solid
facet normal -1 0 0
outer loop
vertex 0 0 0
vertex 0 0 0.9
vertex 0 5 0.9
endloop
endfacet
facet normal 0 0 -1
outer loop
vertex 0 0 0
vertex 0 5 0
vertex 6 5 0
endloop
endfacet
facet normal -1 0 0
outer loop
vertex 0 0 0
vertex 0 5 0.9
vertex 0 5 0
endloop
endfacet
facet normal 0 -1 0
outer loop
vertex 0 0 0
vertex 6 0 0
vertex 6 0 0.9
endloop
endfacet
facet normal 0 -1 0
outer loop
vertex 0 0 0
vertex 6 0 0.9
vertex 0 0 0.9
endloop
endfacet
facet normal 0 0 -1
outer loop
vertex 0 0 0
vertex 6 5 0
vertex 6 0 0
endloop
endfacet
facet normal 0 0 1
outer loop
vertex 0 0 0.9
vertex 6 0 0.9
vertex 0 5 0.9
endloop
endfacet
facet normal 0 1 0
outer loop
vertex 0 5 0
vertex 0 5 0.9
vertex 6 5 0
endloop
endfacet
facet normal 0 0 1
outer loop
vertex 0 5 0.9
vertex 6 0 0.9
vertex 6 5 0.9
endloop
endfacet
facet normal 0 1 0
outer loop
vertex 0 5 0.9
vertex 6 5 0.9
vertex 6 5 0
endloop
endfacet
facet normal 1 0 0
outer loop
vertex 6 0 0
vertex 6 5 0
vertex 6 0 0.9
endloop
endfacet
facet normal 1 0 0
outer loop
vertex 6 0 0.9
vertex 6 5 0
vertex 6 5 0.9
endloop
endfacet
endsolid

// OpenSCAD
/* Warning, this is a very basic generator with a lot of approximation 
input data : [VQFN, VLX, 6x5x0.9mm, 42, , A, C04-00343A]
generated by com.zoubworld.electronics.cad.model3d.Basic
Date : Sun Feb 15 10:50:48 CET 2026
*/

//body
color("black")
translate([0,0,0])
cube([6.0,5.0,0.9], center=false);
